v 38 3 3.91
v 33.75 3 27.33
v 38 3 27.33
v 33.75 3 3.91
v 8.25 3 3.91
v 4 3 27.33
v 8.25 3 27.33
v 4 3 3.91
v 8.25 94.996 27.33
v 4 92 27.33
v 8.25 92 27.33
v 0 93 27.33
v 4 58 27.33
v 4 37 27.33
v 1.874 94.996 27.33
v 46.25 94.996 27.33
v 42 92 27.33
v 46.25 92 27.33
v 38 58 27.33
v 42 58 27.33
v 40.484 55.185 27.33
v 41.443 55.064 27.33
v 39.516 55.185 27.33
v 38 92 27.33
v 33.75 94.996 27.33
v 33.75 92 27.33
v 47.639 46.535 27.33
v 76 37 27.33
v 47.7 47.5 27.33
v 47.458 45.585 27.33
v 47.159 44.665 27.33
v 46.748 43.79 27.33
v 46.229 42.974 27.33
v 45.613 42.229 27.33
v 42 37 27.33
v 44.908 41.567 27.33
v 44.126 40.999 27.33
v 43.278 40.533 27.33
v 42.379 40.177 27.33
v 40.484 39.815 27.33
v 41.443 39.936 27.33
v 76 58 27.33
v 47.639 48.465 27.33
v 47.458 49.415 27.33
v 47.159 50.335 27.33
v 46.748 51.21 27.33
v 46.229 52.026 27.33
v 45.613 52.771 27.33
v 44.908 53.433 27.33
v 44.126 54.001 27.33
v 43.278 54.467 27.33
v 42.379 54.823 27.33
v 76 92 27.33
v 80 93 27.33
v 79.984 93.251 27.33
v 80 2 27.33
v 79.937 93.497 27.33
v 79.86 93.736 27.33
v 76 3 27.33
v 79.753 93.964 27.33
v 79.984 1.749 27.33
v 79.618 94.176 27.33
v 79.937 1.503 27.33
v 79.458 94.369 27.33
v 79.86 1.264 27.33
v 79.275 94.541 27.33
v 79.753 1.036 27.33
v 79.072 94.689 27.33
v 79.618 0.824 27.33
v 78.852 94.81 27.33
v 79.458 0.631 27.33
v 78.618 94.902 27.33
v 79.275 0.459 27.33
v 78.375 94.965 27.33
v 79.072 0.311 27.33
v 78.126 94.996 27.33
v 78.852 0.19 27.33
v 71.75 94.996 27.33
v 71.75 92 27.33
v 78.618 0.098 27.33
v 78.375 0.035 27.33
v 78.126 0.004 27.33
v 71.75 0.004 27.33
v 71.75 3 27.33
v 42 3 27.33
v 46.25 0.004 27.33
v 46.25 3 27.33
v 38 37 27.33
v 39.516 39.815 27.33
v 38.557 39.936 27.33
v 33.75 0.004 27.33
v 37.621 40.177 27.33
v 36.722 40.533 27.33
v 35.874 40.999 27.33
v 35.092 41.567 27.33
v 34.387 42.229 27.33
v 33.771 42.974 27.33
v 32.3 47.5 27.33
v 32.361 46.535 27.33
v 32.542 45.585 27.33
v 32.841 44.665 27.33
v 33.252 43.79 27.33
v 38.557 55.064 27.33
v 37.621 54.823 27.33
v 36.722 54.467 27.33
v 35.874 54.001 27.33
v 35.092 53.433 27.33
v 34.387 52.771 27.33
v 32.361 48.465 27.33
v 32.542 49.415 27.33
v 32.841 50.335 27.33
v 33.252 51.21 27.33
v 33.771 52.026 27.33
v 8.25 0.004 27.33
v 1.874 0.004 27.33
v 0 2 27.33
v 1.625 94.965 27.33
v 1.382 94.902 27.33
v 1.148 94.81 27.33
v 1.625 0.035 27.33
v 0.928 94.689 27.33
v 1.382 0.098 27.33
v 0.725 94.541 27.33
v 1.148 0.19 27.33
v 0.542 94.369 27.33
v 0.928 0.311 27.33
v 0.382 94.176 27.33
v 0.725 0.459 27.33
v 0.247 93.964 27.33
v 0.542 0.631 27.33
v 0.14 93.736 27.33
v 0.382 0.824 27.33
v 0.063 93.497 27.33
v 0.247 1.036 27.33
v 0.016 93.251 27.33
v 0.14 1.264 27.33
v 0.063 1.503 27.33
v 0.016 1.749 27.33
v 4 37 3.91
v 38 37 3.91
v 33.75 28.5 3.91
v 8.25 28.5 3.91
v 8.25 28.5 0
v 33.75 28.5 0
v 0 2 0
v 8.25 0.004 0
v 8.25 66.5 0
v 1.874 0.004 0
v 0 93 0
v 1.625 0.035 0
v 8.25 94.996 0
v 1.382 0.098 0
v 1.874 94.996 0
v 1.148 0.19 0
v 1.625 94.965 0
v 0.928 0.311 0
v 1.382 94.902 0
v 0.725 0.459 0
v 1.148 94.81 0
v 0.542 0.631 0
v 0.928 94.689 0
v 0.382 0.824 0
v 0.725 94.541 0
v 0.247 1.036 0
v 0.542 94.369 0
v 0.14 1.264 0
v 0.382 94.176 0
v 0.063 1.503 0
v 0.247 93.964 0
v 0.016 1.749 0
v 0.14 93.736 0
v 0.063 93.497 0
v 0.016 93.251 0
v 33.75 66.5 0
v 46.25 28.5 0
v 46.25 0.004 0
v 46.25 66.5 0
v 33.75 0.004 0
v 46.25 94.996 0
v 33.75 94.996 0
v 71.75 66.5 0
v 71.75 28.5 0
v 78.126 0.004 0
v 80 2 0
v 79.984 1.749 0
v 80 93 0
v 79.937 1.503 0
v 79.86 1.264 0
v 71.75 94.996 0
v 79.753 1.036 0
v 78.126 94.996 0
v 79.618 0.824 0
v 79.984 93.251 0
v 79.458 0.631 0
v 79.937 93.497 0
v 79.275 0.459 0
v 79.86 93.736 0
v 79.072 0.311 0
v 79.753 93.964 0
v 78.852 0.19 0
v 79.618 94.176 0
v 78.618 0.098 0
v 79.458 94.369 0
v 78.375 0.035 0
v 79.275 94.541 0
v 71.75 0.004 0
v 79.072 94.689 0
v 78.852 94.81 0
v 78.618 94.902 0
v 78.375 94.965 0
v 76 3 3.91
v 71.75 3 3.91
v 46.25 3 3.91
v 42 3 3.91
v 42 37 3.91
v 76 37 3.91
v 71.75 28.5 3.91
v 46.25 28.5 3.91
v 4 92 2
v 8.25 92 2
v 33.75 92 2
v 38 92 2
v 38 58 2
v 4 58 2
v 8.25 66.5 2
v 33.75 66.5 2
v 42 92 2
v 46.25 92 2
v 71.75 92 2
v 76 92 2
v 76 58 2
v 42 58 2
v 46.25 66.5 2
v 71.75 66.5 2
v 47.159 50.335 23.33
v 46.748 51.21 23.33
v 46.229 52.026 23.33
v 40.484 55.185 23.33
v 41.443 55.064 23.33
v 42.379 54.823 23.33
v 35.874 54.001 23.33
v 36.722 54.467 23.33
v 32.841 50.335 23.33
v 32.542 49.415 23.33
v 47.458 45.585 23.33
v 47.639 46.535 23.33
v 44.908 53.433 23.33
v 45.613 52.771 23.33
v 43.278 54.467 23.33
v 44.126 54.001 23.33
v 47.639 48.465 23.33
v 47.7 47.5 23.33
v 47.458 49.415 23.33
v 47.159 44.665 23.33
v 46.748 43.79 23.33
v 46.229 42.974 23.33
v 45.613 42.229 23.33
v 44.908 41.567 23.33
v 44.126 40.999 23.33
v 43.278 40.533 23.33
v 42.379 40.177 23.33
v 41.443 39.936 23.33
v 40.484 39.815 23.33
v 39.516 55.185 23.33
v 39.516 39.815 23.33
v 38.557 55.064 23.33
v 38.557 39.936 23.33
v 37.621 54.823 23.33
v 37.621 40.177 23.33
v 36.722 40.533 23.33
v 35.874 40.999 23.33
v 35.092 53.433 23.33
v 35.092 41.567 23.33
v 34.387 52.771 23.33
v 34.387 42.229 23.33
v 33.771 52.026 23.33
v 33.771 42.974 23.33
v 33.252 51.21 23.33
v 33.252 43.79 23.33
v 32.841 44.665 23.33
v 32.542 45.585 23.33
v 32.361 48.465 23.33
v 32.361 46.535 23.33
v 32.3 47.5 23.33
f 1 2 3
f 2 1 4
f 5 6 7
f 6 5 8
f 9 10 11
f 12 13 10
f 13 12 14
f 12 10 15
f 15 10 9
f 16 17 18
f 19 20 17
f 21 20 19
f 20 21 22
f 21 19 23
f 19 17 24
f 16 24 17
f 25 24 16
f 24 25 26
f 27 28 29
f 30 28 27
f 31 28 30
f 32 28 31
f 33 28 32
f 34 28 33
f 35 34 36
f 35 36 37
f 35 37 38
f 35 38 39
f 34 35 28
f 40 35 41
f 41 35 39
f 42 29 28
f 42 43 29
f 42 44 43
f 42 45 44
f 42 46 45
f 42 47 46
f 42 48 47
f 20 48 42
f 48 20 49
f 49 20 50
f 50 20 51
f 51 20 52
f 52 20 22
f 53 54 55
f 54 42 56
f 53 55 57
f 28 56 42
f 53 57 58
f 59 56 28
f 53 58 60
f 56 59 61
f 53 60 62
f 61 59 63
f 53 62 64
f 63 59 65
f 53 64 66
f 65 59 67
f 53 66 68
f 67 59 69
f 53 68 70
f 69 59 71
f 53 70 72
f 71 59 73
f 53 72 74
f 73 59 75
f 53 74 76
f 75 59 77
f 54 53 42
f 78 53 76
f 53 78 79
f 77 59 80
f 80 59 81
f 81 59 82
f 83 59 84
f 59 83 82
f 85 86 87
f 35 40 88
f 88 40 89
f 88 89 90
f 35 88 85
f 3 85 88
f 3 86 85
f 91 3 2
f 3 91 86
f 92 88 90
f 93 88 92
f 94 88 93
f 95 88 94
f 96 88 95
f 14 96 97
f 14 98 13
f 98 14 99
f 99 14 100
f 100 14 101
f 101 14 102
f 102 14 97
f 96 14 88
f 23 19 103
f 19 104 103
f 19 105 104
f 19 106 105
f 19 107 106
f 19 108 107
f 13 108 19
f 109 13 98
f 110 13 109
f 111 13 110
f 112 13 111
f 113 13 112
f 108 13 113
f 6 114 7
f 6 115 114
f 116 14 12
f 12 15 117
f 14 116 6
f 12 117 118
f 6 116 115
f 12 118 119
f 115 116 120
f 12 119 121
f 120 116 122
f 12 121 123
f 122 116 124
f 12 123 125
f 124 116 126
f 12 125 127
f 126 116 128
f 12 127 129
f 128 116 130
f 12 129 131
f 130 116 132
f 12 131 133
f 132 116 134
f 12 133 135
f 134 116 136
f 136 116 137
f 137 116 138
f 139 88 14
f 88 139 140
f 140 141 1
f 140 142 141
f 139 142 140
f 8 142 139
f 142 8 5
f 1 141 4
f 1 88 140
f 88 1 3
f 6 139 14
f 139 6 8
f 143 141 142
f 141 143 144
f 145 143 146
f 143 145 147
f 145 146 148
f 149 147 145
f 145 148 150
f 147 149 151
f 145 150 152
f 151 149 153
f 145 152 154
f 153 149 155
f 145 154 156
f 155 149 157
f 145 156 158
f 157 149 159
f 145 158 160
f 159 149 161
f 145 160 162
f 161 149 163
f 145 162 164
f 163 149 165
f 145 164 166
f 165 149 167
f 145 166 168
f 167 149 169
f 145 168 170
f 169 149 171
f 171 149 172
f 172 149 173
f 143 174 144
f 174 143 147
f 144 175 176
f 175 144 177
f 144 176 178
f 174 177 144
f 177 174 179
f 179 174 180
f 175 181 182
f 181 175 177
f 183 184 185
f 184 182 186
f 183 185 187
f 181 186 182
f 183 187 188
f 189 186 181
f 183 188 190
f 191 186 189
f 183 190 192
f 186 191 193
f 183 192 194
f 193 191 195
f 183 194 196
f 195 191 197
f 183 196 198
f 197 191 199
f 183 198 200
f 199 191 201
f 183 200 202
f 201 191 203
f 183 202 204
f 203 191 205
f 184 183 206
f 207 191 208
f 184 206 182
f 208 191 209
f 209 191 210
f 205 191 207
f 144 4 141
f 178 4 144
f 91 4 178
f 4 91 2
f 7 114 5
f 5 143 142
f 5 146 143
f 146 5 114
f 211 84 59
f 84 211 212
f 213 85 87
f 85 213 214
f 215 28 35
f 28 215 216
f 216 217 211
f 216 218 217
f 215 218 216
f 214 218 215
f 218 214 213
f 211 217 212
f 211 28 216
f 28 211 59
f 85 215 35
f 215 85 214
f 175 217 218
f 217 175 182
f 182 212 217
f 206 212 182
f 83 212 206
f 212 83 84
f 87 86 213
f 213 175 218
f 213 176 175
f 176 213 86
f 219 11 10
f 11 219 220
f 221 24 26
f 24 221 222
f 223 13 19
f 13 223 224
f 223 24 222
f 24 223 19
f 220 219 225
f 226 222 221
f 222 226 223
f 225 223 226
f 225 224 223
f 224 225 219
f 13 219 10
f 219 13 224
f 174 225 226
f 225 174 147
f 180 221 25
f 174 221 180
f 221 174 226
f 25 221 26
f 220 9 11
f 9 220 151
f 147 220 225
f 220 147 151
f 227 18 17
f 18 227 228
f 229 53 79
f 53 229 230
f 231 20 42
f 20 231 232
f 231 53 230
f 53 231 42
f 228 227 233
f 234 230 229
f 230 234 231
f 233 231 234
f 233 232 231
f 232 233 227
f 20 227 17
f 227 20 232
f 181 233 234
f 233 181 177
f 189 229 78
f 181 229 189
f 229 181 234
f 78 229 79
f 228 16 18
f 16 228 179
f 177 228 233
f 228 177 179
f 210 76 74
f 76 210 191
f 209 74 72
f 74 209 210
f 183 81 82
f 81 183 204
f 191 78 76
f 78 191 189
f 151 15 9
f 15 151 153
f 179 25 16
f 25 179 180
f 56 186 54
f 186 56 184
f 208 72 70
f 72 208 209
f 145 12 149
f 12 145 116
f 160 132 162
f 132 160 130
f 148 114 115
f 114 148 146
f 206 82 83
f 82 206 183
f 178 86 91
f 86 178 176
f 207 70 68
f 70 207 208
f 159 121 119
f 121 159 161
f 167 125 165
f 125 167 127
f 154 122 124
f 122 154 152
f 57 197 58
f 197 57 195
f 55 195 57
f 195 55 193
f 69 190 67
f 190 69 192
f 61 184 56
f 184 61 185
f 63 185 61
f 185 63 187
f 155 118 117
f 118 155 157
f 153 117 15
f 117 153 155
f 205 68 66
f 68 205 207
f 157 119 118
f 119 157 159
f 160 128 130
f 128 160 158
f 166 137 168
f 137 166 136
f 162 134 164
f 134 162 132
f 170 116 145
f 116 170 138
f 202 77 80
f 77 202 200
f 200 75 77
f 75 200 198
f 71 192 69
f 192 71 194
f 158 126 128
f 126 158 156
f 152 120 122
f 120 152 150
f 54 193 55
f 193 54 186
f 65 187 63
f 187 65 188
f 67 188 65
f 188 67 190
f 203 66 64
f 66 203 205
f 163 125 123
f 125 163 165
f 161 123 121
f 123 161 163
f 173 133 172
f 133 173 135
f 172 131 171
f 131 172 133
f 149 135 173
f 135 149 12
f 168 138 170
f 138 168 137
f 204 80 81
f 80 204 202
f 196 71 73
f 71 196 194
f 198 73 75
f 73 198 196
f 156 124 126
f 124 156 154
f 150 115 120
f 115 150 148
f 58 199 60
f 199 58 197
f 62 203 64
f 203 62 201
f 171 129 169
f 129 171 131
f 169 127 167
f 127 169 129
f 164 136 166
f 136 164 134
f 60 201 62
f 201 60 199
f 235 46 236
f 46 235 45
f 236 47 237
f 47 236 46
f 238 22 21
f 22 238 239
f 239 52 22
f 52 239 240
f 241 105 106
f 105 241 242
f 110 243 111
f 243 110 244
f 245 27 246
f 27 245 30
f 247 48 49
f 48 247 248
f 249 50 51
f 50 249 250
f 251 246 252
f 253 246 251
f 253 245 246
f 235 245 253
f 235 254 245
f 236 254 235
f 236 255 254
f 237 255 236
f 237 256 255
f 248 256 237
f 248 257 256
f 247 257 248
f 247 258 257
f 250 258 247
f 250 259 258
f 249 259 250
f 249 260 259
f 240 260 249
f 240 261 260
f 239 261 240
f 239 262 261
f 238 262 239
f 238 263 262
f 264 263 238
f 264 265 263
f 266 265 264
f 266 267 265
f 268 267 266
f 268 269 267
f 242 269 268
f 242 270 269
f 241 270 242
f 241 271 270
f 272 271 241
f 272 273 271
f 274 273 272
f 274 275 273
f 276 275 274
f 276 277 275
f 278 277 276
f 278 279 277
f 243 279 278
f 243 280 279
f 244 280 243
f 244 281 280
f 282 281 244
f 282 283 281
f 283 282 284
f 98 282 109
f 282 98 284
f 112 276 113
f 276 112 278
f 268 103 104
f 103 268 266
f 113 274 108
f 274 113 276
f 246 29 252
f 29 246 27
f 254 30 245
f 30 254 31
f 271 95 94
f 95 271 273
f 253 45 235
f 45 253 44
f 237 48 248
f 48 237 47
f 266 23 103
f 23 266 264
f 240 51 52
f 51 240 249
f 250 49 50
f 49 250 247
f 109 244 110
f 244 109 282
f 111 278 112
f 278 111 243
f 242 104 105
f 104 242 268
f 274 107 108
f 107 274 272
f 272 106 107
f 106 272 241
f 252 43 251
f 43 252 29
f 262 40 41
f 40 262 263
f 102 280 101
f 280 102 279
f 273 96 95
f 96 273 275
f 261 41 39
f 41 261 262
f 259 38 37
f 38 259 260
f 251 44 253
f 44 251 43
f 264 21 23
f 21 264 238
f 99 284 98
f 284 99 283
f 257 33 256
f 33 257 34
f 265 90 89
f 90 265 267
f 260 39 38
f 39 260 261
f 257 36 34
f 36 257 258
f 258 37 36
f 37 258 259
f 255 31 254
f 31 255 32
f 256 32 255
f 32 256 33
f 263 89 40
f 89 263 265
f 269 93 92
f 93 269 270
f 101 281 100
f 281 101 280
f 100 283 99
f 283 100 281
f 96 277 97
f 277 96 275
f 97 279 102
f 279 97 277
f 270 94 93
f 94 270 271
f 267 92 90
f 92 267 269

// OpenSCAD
// file: SquarePileLib.scad
module LeftPile(wallThickness, totalHeight, singlePileHeight, singlePileWidth, singlePileLength, pileCount){
//    15.05 by 14.95 by 2.15
    pileHeight = (pileCount * singlePileHeight) + .5;
    openingSize = singlePileWidth * .75;
    blockerSize = (singlePileLength - openingSize) / 2;
    
    translate([wallThickness, wallThickness, totalHeight - pileHeight])
        cube([singlePileLength, singlePileWidth, pileHeight]);
    translate([-.00001, wallThickness + (blockerSize), 0])
        cube([wallThickness + openingSize, openingSize, totalHeight]);
}

module RightPile(wallThickness, totalHeight, singlePileHeight, singlePileWidth, singlePileLength, pileCount){
    translate([0, wallThickness + wallThickness + singlePileWidth, 0])
        rotate([0, 0, 180])
            LeftPile(wallThickness, totalHeight, singlePileHeight, singlePileWidth, singlePileLength, pileCount);
}

module BottomPile(wallThickness, totalHeight, singlePileHeight, singlePileWidth, singlePileLength, pileCount){
    translate([wallThickness + wallThickness + singlePileWidth, 0, 0])
        rotate([0, 0, 90])
            LeftPile(wallThickness, totalHeight, singlePileHeight, singlePileWidth, singlePileLength, pileCount);
}

module TopPile(wallThickness, totalHeight, singlePileHeight, singlePileWidth, singlePileLength, pileCount){
//    translate([
//        wallThickness + wallThickness + singlePileWidth,
//        wallThickness + wallThickness + singlePileWidth,
//        0])
        rotate([0, 0, 270])
            LeftPile(wallThickness, totalHeight, singlePileHeight, singlePileWidth, singlePileLength, pileCount);
}
// file: CoreLib.scad
function whiteSpaceBetweenBoxes(side, numberOfBoxes, boxLength) =
    (side - (numberOfBoxes * boxLength)) / (numberOfBoxes + 1);
    
function getOffsetForWhiteSpace(whiteSpaceBetweenBoxes, index, boxLength, singleBoxOffset) =
    ((index + 1) * whiteSpaceBetweenBoxes + boxLength * (index)) + singleBoxOffset;
// file: CaledoniaContractsLib.scad
include<SquarePileLib.scad>
singleContractPileHeight = 1.91;
singleContractPileWidth = 33 + 1;
singleContractPileLength = 33 + 1;

module LeftContractPile(wallThickness, totalHeight, contractPileCount){
    LeftPile(
        wallThickness,
        totalHeight,
        singleContractPileHeight,
        singleContractPileWidth,
        singleContractPileLength,
        contractPileCount);
}

module RightContractPile(wallThickness, totalHeight, contractPileCount){
    RightPile(
        wallThickness,
        totalHeight,
        singleContractPileHeight,
        singleContractPileWidth,
        singleContractPileLength,
        contractPileCount);
}

module BottomContractPile(wallThickness, totalHeight, contractPileCount){
    BottomPile(
        wallThickness,
        totalHeight,
        singleContractPileHeight,
        singleContractPileWidth,
        singleContractPileLength,
        contractPileCount);
}

module TopContractPile(wallThickness, totalHeight, contractPileCount){
    TopPile(
        wallThickness,
        totalHeight,
        singleContractPileHeight,
        singleContractPileWidth,
        singleContractPileLength,
        contractPileCount);
}

function contractPileHeight(contractPileCount) =
    (contractPileCount * singleContractPileHeight) + .5;
// main file
include<CaledoniaContractsLib.scad>
include<CoreLib.scad>
magnetBaseInnerDiameter = 15.4;
magnetHeight = 4.0;
floorThickness = 2;
wallThickness = 3;
maxContractsPerStack = 13;
height = contractPileHeight(maxContractsPerStack) + floorThickness;
echo(height);
length = 80;
width = 95;
numberOfTopBoxes = 2;
topBoxContractsPerStack = [13, 13];
numberOfBottomBoxes = 2;
bottomBoxContractsPerStack = [12, 12];
numberOfLeftBoxes = 0;
leftBoxContractsPerStack = [9];
numberOfRightBoxes = 0;
rightBoxContractsPerStack = [9];

difference() {

//    whitespace between boxes = (total length - (# of boxes * width of boxes)) / (# of boxes + 1)
//    position of box n = whitespace * n + 1 + width of box * (n)
    
    $fn=50;
    minkowski()
    {
      translate([2,2,0])
        cube([length-4, width-4, height - 1]);
      cylinder(r=2,h=1);
    }
    
//    cube([length, width, height]);

    whiteSpaceBetweenTopBoxes = whiteSpaceBetweenBoxes(length, numberOfTopBoxes, singleContractPileWidth);
    whiteSpaceBetweenBottomBoxes = whiteSpaceBetweenBoxes(length, numberOfBottomBoxes, singleContractPileWidth);
    remainingWidth = width - (2 * singleContractPileWidth);
    whiteSpaceBetweenLeftBoxes = whiteSpaceBetweenBoxes(remainingWidth, numberOfLeftBoxes, singleContractPileWidth);
    whiteSpaceBetweenRightBoxes = whiteSpaceBetweenBoxes(remainingWidth, numberOfRightBoxes, singleContractPileWidth);

    if (numberOfBottomBoxes != 0)
    {
        for(i=[0:numberOfBottomBoxes - 1]){
            translate([
                getOffsetForWhiteSpace(whiteSpaceBetweenBottomBoxes, i, singleContractPileWidth, -wallThickness),
                0,
                0])
                BottomContractPile(wallThickness, height, bottomBoxContractsPerStack[i]);
        }
    }
    
    
    if (numberOfTopBoxes != 0)
    {
        for(i=[0:numberOfTopBoxes - 1]){
            translate([
                getOffsetForWhiteSpace(whiteSpaceBetweenTopBoxes, i, singleContractPileWidth, -wallThickness),
                width,
                0])
                TopContractPile(wallThickness, height, topBoxContractsPerStack[i]);
        }
    }
    
    if (numberOfLeftBoxes != 0)
    {
        for(i=[0:numberOfLeftBoxes - 1]){
            translate([
                0,
                getOffsetForWhiteSpace(whiteSpaceBetweenLeftBoxes, i, singleContractPileWidth, singleContractPileWidth - wallThickness),
                0])
                LeftContractPile(wallThickness, height, leftBoxContractsPerStack[i]);
        }
    }
    
    if (numberOfRightBoxes != 0)
    {
        for(i=[0:numberOfRightBoxes - 1]){
            translate([
                length,
                getOffsetForWhiteSpace(whiteSpaceBetweenRightBoxes, i, singleContractPileWidth, singleContractPileWidth - wallThickness),
                0])
                RightContractPile(wallThickness, height, rightBoxContractsPerStack[i]);
        }
    }
    
    translate([length/2,  width/2, height - magnetHeight])
        cylinder(magnetHeight, d=magnetBaseInnerDiameter);
}
